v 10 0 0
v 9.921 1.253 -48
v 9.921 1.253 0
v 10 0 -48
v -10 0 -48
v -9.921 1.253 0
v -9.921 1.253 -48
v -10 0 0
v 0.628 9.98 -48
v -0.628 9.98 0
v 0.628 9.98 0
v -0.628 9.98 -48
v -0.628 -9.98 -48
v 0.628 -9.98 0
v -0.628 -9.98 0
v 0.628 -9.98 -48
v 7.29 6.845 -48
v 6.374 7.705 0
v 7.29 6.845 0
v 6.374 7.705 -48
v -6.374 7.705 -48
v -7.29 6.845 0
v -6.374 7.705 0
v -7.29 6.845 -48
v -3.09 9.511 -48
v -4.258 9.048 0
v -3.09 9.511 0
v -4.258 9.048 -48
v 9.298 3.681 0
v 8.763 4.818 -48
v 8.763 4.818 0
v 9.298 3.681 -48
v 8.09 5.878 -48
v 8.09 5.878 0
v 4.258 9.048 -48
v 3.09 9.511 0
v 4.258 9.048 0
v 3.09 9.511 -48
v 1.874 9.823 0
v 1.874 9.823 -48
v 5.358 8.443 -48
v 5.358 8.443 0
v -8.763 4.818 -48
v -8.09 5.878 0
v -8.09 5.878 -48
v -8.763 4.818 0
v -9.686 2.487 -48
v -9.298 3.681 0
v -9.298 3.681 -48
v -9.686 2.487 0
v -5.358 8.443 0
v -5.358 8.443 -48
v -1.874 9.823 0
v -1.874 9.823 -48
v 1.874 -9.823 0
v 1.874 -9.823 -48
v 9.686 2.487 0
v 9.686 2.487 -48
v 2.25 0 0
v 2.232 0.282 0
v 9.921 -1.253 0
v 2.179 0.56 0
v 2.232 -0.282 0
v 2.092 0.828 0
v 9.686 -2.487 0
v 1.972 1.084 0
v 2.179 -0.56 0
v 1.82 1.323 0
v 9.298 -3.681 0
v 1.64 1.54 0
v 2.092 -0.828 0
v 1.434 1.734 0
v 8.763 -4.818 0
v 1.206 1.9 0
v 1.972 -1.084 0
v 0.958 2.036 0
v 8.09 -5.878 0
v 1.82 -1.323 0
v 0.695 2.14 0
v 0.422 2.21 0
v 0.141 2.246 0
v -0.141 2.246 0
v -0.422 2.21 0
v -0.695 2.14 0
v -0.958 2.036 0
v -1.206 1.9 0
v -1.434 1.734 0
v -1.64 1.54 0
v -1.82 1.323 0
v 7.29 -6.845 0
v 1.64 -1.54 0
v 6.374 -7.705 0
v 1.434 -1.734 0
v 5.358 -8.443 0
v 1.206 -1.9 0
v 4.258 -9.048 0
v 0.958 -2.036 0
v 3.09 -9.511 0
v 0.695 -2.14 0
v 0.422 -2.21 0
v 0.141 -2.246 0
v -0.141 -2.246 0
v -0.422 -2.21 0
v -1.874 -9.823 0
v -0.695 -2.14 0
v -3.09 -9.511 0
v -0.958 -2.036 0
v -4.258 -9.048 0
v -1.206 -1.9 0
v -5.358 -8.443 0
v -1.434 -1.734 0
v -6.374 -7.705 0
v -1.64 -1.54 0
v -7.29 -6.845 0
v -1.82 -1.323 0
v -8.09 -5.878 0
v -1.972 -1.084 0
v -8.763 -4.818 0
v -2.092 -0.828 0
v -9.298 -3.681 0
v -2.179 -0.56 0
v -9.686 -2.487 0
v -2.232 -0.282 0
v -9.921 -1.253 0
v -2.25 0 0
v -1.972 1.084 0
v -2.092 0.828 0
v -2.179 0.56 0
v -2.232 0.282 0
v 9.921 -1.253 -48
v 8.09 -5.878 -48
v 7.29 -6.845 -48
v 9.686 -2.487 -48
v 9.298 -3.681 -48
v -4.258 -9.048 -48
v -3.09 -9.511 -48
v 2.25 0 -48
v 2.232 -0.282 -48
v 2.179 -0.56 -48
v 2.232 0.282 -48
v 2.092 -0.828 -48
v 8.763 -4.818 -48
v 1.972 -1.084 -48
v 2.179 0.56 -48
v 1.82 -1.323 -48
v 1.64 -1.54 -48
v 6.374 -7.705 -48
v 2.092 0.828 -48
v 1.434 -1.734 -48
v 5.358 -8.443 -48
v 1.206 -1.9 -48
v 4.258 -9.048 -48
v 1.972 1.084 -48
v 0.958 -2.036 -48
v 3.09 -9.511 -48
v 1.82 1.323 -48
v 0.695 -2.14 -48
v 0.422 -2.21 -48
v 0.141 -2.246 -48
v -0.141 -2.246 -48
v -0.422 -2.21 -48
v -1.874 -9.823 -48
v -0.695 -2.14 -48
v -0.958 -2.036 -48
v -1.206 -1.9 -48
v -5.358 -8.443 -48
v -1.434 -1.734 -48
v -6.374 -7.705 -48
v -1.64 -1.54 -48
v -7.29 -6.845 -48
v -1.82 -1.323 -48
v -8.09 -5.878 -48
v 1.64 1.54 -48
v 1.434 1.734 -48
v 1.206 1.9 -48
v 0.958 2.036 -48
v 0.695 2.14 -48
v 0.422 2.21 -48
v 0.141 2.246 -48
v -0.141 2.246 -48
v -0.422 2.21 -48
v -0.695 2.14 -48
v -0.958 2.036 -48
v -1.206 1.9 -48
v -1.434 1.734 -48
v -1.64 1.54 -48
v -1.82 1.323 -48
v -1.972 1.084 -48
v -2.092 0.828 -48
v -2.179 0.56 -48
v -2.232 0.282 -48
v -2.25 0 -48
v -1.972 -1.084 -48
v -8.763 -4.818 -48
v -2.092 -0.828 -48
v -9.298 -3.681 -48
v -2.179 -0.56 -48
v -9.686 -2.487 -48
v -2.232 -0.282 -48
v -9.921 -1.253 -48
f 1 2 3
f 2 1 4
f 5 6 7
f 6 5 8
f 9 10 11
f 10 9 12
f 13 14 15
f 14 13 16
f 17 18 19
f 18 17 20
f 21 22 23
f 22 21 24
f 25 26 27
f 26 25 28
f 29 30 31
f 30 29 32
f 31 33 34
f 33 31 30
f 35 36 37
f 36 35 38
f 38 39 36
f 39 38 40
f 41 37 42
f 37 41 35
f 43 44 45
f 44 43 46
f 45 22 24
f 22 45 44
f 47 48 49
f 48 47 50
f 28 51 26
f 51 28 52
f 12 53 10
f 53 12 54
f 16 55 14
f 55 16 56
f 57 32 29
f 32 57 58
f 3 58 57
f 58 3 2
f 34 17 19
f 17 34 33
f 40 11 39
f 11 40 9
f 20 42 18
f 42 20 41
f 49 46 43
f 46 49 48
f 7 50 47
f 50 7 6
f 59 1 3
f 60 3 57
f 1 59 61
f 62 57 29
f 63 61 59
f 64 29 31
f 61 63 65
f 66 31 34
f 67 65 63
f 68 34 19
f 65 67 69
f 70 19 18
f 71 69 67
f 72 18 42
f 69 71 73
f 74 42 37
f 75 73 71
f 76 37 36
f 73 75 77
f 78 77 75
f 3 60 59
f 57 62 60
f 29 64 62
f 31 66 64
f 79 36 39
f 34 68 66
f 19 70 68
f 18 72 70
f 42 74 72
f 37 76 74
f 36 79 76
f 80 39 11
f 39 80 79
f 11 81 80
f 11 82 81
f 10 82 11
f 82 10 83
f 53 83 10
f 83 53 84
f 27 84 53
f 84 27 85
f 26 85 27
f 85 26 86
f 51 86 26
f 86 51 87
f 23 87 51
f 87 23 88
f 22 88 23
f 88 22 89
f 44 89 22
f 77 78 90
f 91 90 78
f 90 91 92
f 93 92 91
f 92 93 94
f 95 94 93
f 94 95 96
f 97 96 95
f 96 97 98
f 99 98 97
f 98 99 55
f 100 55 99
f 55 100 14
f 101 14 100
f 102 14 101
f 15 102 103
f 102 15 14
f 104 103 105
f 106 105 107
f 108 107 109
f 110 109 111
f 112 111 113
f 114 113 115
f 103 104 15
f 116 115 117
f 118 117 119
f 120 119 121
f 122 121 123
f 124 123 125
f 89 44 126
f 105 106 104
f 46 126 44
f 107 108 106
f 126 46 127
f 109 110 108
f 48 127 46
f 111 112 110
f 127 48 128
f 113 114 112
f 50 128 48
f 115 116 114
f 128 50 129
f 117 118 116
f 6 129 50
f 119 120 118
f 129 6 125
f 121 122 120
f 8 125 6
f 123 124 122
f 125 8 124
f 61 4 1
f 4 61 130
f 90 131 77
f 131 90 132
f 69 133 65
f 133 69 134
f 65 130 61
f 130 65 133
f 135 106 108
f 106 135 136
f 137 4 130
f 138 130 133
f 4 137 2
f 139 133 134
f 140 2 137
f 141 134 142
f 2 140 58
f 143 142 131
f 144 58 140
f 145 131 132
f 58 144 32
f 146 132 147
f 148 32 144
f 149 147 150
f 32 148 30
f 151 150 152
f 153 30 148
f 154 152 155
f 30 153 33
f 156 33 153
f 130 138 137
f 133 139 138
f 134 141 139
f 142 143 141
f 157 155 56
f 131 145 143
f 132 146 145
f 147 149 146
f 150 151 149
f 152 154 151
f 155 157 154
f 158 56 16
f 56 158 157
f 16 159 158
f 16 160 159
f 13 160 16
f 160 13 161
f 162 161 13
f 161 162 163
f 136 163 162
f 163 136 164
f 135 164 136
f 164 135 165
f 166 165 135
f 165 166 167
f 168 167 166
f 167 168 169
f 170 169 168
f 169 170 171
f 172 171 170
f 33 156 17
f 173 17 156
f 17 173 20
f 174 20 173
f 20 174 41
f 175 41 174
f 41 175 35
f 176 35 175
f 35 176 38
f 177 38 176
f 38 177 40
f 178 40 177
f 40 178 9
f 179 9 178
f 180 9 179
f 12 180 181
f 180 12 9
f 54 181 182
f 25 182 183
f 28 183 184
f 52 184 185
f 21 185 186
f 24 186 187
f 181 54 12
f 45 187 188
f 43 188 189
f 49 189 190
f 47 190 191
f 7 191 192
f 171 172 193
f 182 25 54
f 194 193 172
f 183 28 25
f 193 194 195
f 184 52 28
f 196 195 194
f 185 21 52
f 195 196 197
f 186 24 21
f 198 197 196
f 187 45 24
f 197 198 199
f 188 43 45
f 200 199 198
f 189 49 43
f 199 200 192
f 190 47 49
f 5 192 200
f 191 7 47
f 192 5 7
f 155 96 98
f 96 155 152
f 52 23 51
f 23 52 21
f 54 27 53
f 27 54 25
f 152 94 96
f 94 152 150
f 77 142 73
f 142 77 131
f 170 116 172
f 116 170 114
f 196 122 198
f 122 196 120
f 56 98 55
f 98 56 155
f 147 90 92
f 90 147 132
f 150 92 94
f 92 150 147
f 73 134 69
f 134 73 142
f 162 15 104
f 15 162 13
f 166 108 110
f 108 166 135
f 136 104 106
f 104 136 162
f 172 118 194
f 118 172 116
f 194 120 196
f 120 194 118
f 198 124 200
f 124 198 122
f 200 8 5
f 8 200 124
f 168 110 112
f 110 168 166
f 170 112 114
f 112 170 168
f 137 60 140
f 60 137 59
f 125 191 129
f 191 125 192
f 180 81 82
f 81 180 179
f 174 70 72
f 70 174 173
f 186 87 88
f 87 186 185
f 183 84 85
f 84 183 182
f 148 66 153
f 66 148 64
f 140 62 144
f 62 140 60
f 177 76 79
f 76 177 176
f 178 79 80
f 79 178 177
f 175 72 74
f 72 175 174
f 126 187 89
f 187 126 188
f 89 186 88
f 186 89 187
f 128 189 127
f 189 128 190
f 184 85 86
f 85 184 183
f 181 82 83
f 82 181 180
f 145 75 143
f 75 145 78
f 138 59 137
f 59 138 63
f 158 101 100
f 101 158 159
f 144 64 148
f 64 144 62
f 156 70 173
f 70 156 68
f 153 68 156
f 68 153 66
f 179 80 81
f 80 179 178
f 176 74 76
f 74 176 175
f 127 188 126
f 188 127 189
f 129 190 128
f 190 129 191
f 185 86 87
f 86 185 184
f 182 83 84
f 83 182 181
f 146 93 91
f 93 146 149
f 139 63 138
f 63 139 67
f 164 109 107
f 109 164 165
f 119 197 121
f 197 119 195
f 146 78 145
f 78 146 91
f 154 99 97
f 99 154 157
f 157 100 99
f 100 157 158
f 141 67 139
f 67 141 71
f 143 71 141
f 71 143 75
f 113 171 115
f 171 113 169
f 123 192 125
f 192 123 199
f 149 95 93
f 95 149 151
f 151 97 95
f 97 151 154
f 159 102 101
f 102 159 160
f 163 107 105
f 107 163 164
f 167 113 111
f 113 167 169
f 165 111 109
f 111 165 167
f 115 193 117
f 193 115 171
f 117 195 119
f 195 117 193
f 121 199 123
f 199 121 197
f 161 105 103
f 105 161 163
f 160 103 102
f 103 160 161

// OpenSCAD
$fn = 50;


difference() {
	union() {
		translate(v = [0, 0, -48.0000000000]) {
			cylinder(h = 48, r = 10.0000000000);
		}
	}
	union() {
		#translate(v = [0, 0, -48]) {
			cylinder(h = 48, r = 2.2500000000);
		}
	}
}
